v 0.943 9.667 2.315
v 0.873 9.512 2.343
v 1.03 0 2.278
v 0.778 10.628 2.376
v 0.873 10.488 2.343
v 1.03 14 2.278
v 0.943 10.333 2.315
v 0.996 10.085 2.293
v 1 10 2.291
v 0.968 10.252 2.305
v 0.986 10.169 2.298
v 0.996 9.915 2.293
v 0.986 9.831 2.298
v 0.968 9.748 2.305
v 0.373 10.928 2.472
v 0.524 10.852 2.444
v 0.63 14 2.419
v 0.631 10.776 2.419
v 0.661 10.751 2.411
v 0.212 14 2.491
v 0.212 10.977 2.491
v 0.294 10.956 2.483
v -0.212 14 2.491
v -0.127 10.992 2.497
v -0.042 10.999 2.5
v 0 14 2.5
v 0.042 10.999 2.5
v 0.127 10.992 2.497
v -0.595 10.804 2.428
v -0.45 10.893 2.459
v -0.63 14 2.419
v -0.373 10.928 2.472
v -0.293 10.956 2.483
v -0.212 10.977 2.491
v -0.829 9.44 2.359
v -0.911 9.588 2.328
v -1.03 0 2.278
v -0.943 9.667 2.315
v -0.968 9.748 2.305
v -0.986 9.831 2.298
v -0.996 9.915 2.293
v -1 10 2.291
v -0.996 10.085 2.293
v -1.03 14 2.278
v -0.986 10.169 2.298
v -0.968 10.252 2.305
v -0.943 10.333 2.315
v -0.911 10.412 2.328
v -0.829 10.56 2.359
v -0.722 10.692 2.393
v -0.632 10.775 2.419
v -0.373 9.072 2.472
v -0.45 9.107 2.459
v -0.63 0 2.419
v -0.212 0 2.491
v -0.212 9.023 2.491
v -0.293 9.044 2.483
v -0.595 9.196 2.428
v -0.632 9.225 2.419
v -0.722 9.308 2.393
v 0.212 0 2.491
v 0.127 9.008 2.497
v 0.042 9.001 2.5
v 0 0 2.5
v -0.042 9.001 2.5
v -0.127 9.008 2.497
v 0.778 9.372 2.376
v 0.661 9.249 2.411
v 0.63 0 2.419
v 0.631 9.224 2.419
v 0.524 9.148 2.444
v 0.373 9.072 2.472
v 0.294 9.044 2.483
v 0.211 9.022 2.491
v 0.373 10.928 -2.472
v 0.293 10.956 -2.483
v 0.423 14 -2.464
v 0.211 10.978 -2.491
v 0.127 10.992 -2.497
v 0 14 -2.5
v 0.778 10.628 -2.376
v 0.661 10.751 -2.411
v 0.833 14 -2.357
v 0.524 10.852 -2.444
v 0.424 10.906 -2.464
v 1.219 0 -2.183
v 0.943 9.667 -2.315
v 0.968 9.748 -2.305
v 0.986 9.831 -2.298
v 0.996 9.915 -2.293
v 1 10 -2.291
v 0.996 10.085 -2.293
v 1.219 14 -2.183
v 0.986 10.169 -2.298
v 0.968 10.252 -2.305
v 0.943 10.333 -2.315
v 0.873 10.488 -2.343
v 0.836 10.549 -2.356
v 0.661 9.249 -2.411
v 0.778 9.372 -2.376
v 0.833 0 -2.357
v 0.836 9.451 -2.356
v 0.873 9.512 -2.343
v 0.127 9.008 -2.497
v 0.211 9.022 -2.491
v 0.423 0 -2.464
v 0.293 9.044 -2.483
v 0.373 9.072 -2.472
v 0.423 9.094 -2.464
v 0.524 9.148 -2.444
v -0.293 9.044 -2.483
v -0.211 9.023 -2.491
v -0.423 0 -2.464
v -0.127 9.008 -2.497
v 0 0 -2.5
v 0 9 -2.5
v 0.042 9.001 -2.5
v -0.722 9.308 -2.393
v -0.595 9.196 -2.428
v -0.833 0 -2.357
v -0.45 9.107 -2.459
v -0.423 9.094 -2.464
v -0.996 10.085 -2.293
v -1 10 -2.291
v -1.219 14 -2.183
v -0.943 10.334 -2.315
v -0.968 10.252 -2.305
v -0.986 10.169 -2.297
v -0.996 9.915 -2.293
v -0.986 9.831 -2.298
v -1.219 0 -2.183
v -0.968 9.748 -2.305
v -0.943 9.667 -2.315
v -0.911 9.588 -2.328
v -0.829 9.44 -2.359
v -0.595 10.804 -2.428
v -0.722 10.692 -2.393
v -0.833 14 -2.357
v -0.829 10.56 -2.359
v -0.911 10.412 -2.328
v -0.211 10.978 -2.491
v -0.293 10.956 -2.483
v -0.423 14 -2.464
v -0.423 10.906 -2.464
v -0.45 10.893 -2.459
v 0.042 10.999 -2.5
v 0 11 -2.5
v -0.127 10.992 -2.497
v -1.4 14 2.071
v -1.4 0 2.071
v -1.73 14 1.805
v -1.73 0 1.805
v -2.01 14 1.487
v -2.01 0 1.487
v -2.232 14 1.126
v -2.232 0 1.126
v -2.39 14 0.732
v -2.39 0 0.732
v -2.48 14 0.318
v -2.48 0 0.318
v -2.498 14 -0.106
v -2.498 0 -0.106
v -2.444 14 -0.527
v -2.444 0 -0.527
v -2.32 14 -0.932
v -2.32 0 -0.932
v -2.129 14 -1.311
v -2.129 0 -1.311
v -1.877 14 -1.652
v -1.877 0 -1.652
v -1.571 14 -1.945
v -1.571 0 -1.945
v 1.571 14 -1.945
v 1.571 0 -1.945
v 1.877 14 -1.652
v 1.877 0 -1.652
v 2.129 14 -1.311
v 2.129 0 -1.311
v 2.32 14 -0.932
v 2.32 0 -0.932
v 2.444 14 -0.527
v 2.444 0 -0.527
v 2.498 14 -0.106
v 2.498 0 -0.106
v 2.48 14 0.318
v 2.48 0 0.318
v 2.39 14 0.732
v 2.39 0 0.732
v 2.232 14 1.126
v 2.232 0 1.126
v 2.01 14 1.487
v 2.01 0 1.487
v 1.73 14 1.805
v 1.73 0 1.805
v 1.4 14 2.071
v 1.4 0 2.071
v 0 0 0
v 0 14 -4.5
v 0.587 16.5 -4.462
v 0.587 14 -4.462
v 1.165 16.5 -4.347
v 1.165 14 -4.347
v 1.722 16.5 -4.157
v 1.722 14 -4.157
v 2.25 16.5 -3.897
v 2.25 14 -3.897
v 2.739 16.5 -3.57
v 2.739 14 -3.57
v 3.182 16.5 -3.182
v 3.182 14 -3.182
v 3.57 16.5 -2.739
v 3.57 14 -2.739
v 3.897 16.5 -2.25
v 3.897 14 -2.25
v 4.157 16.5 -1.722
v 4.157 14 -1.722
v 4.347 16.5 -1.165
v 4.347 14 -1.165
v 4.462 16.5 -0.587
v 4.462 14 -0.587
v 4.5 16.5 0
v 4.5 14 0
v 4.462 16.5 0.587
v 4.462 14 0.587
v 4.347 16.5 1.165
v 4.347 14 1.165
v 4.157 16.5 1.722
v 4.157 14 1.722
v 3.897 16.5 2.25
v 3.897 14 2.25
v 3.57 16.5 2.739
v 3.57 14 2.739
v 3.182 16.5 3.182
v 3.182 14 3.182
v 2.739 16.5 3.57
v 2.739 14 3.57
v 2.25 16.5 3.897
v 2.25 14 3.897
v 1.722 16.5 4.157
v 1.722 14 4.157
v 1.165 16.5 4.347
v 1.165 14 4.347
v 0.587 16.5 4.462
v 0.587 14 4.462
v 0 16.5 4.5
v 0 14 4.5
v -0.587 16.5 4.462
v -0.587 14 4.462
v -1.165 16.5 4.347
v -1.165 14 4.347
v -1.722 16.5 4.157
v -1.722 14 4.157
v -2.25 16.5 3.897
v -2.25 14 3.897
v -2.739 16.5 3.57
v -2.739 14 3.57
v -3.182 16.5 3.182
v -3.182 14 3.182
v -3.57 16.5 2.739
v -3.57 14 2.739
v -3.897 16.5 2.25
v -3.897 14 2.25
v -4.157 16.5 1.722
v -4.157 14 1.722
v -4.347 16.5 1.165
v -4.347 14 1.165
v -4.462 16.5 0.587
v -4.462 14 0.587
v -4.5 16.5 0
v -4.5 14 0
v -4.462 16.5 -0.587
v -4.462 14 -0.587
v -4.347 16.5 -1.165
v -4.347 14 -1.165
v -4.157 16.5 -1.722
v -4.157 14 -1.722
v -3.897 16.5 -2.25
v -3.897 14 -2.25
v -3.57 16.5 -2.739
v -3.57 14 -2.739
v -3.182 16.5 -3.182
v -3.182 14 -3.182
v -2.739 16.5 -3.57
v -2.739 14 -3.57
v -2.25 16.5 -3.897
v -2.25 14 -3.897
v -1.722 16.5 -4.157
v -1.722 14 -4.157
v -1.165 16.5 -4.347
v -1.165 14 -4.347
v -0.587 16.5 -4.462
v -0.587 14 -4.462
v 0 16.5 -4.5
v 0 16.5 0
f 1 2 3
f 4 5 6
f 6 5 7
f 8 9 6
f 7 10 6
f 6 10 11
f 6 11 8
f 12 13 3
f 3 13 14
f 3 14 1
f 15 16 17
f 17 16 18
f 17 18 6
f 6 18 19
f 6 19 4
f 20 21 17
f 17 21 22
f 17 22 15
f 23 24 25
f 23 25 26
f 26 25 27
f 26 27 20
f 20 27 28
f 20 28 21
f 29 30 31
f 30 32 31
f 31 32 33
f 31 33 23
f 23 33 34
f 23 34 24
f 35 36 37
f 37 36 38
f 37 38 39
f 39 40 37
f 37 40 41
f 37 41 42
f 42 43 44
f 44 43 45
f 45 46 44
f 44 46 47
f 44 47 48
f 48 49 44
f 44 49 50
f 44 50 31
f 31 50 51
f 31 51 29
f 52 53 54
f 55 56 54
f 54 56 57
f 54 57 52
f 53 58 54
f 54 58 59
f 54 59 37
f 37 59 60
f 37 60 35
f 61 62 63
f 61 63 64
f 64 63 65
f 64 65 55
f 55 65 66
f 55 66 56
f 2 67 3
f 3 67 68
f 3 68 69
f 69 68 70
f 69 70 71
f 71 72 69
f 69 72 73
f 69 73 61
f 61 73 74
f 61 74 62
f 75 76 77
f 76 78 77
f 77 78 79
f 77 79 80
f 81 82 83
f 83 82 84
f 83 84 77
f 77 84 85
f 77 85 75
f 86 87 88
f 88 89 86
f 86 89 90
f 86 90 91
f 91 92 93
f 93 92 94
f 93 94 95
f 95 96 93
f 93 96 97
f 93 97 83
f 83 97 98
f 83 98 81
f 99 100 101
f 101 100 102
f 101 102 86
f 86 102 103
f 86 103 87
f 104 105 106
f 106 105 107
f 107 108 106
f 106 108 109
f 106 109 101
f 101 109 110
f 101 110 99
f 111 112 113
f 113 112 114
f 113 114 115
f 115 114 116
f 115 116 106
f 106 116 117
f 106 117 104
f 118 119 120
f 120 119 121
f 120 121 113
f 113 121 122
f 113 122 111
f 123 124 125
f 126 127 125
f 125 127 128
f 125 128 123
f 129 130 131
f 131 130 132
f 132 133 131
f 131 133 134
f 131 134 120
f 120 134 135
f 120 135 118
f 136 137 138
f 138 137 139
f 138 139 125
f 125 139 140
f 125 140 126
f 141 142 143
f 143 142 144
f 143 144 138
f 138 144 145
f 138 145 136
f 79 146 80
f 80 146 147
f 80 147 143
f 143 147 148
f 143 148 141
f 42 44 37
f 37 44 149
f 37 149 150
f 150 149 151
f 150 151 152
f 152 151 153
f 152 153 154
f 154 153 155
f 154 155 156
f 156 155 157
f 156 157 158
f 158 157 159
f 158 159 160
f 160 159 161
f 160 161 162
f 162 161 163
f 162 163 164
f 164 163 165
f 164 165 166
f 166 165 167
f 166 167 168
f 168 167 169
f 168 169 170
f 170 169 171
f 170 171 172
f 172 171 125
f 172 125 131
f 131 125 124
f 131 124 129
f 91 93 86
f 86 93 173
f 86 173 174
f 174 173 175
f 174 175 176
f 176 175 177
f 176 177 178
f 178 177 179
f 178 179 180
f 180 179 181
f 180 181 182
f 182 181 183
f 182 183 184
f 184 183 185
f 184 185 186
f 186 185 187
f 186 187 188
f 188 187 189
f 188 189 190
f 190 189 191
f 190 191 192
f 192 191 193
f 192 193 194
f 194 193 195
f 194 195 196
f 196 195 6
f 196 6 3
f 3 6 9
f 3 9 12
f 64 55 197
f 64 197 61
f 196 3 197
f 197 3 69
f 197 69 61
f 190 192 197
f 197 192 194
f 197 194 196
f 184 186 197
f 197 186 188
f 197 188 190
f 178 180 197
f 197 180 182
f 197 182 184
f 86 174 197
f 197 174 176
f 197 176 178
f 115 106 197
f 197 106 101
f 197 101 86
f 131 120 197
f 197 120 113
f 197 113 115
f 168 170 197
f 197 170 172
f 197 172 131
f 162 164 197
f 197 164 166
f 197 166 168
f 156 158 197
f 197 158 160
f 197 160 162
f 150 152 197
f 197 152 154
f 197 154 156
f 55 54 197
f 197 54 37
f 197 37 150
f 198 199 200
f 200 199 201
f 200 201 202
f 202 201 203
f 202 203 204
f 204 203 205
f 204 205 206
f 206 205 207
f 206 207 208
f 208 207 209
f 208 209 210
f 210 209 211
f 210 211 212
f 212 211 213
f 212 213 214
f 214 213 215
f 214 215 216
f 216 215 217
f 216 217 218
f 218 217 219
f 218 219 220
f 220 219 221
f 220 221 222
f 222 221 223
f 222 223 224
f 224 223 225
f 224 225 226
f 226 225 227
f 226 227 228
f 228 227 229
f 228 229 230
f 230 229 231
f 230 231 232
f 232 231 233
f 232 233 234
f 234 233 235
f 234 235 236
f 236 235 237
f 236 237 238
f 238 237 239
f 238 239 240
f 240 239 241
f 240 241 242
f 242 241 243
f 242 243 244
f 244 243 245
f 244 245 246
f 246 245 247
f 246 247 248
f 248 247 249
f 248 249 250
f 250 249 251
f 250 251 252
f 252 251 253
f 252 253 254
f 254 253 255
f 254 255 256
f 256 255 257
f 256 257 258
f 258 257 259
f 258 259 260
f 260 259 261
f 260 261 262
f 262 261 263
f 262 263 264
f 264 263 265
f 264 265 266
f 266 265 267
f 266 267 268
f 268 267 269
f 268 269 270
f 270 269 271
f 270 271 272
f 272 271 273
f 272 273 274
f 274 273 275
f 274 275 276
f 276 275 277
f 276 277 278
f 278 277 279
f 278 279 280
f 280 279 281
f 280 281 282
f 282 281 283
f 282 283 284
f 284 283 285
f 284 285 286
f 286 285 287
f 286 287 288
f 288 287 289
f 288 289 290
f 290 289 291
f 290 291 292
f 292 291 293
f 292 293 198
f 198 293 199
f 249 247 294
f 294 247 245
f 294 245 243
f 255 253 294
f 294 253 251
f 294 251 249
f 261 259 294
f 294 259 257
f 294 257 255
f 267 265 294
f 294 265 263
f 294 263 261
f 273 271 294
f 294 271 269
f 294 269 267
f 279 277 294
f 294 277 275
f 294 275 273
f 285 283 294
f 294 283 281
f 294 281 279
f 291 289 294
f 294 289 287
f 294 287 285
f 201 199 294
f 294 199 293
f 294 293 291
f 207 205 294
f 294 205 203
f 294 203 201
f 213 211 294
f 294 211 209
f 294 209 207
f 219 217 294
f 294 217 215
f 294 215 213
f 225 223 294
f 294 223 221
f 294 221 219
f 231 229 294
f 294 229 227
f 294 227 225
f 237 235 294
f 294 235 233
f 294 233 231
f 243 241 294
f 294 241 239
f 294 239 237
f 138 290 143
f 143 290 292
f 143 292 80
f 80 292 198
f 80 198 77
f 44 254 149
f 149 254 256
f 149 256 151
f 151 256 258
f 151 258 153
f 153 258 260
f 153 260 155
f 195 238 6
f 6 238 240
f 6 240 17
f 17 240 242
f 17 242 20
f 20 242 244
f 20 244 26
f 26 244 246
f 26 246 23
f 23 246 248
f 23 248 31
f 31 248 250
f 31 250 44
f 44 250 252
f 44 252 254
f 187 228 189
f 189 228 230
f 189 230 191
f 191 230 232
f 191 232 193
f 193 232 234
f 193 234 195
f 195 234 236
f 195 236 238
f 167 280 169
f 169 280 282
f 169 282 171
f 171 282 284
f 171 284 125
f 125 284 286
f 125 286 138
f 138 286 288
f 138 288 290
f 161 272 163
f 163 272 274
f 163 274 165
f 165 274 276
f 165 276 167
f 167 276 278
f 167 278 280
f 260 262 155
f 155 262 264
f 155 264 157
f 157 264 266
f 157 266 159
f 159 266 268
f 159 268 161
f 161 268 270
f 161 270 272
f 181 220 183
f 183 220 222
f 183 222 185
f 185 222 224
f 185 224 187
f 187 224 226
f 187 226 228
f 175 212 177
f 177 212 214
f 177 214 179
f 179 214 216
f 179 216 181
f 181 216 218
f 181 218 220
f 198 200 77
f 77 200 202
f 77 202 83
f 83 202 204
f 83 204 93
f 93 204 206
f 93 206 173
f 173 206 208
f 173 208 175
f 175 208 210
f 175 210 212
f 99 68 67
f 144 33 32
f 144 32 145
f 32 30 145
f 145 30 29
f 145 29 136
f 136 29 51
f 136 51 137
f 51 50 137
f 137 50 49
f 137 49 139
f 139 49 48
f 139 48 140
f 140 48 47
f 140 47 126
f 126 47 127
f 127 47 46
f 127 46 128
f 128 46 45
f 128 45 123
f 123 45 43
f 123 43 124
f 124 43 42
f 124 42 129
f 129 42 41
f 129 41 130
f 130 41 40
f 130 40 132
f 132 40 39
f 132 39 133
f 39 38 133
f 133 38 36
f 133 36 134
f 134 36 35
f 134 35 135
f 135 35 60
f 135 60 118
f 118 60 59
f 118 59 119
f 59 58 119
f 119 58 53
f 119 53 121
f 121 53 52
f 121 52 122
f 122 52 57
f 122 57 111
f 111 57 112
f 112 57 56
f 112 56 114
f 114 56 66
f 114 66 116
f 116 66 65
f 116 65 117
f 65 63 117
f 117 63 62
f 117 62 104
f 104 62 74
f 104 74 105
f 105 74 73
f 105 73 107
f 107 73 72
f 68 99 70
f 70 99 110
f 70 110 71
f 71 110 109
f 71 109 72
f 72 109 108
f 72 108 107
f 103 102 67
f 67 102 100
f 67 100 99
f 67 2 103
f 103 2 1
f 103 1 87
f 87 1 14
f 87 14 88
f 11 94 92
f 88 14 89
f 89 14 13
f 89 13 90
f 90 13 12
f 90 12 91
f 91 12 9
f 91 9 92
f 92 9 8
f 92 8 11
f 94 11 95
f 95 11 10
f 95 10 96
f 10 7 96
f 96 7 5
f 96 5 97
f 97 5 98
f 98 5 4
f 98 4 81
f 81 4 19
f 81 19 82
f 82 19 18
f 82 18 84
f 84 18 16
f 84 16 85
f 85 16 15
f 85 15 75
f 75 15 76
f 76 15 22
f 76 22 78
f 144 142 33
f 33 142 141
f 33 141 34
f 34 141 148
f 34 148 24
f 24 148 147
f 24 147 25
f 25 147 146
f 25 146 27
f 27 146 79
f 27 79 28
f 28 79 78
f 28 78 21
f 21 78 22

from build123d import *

# Parameters (mm, degrees)
CROQUIS1_R              = 2.5
SALIENTE_EXTRUIR1_DEPTH = 14
CROQUIS2_R              = 4.5
SALIENTE_EXTRUIR2_DEPTH = 2.5
CROQUIS3_R              = 1
CORTAR_EXTRUIR1_DEPTH   = 3


with BuildPart() as part:
    # Croquis1 → Saliente-Extruir1 (new body)
    with BuildSketch(Plane(origin=(0, 0, 0), x_dir=(1, 0, 0), z_dir=(0, 1, 0))):
        with Locations(Location((0, 0, 0), (0, 0, 270))):
            Circle(CROQUIS1_R)
    extrude(amount=SALIENTE_EXTRUIR1_DEPTH)

    # Croquis2 → Saliente-Extruir2 (add)
    with BuildSketch(Plane(origin=(0, 14, 0), x_dir=(1, 0, 0), z_dir=(0, 1, 0))):
        with Locations(Location((0, 0, 0), (0, 0, 270))):
            Circle(CROQUIS2_R)
    extrude(amount=SALIENTE_EXTRUIR2_DEPTH)

    # Croquis3 → Cortar-Extruir1 (cut, symmetric)
    with BuildSketch(Plane.XY):
        with Locations(Location((0, 10, 0), (0, 0, 89.999999999))):
            Circle(CROQUIS3_R)
    extrude(amount=CORTAR_EXTRUIR1_DEPTH, both=True, mode=Mode.SUBTRACT)


solid = part.part
